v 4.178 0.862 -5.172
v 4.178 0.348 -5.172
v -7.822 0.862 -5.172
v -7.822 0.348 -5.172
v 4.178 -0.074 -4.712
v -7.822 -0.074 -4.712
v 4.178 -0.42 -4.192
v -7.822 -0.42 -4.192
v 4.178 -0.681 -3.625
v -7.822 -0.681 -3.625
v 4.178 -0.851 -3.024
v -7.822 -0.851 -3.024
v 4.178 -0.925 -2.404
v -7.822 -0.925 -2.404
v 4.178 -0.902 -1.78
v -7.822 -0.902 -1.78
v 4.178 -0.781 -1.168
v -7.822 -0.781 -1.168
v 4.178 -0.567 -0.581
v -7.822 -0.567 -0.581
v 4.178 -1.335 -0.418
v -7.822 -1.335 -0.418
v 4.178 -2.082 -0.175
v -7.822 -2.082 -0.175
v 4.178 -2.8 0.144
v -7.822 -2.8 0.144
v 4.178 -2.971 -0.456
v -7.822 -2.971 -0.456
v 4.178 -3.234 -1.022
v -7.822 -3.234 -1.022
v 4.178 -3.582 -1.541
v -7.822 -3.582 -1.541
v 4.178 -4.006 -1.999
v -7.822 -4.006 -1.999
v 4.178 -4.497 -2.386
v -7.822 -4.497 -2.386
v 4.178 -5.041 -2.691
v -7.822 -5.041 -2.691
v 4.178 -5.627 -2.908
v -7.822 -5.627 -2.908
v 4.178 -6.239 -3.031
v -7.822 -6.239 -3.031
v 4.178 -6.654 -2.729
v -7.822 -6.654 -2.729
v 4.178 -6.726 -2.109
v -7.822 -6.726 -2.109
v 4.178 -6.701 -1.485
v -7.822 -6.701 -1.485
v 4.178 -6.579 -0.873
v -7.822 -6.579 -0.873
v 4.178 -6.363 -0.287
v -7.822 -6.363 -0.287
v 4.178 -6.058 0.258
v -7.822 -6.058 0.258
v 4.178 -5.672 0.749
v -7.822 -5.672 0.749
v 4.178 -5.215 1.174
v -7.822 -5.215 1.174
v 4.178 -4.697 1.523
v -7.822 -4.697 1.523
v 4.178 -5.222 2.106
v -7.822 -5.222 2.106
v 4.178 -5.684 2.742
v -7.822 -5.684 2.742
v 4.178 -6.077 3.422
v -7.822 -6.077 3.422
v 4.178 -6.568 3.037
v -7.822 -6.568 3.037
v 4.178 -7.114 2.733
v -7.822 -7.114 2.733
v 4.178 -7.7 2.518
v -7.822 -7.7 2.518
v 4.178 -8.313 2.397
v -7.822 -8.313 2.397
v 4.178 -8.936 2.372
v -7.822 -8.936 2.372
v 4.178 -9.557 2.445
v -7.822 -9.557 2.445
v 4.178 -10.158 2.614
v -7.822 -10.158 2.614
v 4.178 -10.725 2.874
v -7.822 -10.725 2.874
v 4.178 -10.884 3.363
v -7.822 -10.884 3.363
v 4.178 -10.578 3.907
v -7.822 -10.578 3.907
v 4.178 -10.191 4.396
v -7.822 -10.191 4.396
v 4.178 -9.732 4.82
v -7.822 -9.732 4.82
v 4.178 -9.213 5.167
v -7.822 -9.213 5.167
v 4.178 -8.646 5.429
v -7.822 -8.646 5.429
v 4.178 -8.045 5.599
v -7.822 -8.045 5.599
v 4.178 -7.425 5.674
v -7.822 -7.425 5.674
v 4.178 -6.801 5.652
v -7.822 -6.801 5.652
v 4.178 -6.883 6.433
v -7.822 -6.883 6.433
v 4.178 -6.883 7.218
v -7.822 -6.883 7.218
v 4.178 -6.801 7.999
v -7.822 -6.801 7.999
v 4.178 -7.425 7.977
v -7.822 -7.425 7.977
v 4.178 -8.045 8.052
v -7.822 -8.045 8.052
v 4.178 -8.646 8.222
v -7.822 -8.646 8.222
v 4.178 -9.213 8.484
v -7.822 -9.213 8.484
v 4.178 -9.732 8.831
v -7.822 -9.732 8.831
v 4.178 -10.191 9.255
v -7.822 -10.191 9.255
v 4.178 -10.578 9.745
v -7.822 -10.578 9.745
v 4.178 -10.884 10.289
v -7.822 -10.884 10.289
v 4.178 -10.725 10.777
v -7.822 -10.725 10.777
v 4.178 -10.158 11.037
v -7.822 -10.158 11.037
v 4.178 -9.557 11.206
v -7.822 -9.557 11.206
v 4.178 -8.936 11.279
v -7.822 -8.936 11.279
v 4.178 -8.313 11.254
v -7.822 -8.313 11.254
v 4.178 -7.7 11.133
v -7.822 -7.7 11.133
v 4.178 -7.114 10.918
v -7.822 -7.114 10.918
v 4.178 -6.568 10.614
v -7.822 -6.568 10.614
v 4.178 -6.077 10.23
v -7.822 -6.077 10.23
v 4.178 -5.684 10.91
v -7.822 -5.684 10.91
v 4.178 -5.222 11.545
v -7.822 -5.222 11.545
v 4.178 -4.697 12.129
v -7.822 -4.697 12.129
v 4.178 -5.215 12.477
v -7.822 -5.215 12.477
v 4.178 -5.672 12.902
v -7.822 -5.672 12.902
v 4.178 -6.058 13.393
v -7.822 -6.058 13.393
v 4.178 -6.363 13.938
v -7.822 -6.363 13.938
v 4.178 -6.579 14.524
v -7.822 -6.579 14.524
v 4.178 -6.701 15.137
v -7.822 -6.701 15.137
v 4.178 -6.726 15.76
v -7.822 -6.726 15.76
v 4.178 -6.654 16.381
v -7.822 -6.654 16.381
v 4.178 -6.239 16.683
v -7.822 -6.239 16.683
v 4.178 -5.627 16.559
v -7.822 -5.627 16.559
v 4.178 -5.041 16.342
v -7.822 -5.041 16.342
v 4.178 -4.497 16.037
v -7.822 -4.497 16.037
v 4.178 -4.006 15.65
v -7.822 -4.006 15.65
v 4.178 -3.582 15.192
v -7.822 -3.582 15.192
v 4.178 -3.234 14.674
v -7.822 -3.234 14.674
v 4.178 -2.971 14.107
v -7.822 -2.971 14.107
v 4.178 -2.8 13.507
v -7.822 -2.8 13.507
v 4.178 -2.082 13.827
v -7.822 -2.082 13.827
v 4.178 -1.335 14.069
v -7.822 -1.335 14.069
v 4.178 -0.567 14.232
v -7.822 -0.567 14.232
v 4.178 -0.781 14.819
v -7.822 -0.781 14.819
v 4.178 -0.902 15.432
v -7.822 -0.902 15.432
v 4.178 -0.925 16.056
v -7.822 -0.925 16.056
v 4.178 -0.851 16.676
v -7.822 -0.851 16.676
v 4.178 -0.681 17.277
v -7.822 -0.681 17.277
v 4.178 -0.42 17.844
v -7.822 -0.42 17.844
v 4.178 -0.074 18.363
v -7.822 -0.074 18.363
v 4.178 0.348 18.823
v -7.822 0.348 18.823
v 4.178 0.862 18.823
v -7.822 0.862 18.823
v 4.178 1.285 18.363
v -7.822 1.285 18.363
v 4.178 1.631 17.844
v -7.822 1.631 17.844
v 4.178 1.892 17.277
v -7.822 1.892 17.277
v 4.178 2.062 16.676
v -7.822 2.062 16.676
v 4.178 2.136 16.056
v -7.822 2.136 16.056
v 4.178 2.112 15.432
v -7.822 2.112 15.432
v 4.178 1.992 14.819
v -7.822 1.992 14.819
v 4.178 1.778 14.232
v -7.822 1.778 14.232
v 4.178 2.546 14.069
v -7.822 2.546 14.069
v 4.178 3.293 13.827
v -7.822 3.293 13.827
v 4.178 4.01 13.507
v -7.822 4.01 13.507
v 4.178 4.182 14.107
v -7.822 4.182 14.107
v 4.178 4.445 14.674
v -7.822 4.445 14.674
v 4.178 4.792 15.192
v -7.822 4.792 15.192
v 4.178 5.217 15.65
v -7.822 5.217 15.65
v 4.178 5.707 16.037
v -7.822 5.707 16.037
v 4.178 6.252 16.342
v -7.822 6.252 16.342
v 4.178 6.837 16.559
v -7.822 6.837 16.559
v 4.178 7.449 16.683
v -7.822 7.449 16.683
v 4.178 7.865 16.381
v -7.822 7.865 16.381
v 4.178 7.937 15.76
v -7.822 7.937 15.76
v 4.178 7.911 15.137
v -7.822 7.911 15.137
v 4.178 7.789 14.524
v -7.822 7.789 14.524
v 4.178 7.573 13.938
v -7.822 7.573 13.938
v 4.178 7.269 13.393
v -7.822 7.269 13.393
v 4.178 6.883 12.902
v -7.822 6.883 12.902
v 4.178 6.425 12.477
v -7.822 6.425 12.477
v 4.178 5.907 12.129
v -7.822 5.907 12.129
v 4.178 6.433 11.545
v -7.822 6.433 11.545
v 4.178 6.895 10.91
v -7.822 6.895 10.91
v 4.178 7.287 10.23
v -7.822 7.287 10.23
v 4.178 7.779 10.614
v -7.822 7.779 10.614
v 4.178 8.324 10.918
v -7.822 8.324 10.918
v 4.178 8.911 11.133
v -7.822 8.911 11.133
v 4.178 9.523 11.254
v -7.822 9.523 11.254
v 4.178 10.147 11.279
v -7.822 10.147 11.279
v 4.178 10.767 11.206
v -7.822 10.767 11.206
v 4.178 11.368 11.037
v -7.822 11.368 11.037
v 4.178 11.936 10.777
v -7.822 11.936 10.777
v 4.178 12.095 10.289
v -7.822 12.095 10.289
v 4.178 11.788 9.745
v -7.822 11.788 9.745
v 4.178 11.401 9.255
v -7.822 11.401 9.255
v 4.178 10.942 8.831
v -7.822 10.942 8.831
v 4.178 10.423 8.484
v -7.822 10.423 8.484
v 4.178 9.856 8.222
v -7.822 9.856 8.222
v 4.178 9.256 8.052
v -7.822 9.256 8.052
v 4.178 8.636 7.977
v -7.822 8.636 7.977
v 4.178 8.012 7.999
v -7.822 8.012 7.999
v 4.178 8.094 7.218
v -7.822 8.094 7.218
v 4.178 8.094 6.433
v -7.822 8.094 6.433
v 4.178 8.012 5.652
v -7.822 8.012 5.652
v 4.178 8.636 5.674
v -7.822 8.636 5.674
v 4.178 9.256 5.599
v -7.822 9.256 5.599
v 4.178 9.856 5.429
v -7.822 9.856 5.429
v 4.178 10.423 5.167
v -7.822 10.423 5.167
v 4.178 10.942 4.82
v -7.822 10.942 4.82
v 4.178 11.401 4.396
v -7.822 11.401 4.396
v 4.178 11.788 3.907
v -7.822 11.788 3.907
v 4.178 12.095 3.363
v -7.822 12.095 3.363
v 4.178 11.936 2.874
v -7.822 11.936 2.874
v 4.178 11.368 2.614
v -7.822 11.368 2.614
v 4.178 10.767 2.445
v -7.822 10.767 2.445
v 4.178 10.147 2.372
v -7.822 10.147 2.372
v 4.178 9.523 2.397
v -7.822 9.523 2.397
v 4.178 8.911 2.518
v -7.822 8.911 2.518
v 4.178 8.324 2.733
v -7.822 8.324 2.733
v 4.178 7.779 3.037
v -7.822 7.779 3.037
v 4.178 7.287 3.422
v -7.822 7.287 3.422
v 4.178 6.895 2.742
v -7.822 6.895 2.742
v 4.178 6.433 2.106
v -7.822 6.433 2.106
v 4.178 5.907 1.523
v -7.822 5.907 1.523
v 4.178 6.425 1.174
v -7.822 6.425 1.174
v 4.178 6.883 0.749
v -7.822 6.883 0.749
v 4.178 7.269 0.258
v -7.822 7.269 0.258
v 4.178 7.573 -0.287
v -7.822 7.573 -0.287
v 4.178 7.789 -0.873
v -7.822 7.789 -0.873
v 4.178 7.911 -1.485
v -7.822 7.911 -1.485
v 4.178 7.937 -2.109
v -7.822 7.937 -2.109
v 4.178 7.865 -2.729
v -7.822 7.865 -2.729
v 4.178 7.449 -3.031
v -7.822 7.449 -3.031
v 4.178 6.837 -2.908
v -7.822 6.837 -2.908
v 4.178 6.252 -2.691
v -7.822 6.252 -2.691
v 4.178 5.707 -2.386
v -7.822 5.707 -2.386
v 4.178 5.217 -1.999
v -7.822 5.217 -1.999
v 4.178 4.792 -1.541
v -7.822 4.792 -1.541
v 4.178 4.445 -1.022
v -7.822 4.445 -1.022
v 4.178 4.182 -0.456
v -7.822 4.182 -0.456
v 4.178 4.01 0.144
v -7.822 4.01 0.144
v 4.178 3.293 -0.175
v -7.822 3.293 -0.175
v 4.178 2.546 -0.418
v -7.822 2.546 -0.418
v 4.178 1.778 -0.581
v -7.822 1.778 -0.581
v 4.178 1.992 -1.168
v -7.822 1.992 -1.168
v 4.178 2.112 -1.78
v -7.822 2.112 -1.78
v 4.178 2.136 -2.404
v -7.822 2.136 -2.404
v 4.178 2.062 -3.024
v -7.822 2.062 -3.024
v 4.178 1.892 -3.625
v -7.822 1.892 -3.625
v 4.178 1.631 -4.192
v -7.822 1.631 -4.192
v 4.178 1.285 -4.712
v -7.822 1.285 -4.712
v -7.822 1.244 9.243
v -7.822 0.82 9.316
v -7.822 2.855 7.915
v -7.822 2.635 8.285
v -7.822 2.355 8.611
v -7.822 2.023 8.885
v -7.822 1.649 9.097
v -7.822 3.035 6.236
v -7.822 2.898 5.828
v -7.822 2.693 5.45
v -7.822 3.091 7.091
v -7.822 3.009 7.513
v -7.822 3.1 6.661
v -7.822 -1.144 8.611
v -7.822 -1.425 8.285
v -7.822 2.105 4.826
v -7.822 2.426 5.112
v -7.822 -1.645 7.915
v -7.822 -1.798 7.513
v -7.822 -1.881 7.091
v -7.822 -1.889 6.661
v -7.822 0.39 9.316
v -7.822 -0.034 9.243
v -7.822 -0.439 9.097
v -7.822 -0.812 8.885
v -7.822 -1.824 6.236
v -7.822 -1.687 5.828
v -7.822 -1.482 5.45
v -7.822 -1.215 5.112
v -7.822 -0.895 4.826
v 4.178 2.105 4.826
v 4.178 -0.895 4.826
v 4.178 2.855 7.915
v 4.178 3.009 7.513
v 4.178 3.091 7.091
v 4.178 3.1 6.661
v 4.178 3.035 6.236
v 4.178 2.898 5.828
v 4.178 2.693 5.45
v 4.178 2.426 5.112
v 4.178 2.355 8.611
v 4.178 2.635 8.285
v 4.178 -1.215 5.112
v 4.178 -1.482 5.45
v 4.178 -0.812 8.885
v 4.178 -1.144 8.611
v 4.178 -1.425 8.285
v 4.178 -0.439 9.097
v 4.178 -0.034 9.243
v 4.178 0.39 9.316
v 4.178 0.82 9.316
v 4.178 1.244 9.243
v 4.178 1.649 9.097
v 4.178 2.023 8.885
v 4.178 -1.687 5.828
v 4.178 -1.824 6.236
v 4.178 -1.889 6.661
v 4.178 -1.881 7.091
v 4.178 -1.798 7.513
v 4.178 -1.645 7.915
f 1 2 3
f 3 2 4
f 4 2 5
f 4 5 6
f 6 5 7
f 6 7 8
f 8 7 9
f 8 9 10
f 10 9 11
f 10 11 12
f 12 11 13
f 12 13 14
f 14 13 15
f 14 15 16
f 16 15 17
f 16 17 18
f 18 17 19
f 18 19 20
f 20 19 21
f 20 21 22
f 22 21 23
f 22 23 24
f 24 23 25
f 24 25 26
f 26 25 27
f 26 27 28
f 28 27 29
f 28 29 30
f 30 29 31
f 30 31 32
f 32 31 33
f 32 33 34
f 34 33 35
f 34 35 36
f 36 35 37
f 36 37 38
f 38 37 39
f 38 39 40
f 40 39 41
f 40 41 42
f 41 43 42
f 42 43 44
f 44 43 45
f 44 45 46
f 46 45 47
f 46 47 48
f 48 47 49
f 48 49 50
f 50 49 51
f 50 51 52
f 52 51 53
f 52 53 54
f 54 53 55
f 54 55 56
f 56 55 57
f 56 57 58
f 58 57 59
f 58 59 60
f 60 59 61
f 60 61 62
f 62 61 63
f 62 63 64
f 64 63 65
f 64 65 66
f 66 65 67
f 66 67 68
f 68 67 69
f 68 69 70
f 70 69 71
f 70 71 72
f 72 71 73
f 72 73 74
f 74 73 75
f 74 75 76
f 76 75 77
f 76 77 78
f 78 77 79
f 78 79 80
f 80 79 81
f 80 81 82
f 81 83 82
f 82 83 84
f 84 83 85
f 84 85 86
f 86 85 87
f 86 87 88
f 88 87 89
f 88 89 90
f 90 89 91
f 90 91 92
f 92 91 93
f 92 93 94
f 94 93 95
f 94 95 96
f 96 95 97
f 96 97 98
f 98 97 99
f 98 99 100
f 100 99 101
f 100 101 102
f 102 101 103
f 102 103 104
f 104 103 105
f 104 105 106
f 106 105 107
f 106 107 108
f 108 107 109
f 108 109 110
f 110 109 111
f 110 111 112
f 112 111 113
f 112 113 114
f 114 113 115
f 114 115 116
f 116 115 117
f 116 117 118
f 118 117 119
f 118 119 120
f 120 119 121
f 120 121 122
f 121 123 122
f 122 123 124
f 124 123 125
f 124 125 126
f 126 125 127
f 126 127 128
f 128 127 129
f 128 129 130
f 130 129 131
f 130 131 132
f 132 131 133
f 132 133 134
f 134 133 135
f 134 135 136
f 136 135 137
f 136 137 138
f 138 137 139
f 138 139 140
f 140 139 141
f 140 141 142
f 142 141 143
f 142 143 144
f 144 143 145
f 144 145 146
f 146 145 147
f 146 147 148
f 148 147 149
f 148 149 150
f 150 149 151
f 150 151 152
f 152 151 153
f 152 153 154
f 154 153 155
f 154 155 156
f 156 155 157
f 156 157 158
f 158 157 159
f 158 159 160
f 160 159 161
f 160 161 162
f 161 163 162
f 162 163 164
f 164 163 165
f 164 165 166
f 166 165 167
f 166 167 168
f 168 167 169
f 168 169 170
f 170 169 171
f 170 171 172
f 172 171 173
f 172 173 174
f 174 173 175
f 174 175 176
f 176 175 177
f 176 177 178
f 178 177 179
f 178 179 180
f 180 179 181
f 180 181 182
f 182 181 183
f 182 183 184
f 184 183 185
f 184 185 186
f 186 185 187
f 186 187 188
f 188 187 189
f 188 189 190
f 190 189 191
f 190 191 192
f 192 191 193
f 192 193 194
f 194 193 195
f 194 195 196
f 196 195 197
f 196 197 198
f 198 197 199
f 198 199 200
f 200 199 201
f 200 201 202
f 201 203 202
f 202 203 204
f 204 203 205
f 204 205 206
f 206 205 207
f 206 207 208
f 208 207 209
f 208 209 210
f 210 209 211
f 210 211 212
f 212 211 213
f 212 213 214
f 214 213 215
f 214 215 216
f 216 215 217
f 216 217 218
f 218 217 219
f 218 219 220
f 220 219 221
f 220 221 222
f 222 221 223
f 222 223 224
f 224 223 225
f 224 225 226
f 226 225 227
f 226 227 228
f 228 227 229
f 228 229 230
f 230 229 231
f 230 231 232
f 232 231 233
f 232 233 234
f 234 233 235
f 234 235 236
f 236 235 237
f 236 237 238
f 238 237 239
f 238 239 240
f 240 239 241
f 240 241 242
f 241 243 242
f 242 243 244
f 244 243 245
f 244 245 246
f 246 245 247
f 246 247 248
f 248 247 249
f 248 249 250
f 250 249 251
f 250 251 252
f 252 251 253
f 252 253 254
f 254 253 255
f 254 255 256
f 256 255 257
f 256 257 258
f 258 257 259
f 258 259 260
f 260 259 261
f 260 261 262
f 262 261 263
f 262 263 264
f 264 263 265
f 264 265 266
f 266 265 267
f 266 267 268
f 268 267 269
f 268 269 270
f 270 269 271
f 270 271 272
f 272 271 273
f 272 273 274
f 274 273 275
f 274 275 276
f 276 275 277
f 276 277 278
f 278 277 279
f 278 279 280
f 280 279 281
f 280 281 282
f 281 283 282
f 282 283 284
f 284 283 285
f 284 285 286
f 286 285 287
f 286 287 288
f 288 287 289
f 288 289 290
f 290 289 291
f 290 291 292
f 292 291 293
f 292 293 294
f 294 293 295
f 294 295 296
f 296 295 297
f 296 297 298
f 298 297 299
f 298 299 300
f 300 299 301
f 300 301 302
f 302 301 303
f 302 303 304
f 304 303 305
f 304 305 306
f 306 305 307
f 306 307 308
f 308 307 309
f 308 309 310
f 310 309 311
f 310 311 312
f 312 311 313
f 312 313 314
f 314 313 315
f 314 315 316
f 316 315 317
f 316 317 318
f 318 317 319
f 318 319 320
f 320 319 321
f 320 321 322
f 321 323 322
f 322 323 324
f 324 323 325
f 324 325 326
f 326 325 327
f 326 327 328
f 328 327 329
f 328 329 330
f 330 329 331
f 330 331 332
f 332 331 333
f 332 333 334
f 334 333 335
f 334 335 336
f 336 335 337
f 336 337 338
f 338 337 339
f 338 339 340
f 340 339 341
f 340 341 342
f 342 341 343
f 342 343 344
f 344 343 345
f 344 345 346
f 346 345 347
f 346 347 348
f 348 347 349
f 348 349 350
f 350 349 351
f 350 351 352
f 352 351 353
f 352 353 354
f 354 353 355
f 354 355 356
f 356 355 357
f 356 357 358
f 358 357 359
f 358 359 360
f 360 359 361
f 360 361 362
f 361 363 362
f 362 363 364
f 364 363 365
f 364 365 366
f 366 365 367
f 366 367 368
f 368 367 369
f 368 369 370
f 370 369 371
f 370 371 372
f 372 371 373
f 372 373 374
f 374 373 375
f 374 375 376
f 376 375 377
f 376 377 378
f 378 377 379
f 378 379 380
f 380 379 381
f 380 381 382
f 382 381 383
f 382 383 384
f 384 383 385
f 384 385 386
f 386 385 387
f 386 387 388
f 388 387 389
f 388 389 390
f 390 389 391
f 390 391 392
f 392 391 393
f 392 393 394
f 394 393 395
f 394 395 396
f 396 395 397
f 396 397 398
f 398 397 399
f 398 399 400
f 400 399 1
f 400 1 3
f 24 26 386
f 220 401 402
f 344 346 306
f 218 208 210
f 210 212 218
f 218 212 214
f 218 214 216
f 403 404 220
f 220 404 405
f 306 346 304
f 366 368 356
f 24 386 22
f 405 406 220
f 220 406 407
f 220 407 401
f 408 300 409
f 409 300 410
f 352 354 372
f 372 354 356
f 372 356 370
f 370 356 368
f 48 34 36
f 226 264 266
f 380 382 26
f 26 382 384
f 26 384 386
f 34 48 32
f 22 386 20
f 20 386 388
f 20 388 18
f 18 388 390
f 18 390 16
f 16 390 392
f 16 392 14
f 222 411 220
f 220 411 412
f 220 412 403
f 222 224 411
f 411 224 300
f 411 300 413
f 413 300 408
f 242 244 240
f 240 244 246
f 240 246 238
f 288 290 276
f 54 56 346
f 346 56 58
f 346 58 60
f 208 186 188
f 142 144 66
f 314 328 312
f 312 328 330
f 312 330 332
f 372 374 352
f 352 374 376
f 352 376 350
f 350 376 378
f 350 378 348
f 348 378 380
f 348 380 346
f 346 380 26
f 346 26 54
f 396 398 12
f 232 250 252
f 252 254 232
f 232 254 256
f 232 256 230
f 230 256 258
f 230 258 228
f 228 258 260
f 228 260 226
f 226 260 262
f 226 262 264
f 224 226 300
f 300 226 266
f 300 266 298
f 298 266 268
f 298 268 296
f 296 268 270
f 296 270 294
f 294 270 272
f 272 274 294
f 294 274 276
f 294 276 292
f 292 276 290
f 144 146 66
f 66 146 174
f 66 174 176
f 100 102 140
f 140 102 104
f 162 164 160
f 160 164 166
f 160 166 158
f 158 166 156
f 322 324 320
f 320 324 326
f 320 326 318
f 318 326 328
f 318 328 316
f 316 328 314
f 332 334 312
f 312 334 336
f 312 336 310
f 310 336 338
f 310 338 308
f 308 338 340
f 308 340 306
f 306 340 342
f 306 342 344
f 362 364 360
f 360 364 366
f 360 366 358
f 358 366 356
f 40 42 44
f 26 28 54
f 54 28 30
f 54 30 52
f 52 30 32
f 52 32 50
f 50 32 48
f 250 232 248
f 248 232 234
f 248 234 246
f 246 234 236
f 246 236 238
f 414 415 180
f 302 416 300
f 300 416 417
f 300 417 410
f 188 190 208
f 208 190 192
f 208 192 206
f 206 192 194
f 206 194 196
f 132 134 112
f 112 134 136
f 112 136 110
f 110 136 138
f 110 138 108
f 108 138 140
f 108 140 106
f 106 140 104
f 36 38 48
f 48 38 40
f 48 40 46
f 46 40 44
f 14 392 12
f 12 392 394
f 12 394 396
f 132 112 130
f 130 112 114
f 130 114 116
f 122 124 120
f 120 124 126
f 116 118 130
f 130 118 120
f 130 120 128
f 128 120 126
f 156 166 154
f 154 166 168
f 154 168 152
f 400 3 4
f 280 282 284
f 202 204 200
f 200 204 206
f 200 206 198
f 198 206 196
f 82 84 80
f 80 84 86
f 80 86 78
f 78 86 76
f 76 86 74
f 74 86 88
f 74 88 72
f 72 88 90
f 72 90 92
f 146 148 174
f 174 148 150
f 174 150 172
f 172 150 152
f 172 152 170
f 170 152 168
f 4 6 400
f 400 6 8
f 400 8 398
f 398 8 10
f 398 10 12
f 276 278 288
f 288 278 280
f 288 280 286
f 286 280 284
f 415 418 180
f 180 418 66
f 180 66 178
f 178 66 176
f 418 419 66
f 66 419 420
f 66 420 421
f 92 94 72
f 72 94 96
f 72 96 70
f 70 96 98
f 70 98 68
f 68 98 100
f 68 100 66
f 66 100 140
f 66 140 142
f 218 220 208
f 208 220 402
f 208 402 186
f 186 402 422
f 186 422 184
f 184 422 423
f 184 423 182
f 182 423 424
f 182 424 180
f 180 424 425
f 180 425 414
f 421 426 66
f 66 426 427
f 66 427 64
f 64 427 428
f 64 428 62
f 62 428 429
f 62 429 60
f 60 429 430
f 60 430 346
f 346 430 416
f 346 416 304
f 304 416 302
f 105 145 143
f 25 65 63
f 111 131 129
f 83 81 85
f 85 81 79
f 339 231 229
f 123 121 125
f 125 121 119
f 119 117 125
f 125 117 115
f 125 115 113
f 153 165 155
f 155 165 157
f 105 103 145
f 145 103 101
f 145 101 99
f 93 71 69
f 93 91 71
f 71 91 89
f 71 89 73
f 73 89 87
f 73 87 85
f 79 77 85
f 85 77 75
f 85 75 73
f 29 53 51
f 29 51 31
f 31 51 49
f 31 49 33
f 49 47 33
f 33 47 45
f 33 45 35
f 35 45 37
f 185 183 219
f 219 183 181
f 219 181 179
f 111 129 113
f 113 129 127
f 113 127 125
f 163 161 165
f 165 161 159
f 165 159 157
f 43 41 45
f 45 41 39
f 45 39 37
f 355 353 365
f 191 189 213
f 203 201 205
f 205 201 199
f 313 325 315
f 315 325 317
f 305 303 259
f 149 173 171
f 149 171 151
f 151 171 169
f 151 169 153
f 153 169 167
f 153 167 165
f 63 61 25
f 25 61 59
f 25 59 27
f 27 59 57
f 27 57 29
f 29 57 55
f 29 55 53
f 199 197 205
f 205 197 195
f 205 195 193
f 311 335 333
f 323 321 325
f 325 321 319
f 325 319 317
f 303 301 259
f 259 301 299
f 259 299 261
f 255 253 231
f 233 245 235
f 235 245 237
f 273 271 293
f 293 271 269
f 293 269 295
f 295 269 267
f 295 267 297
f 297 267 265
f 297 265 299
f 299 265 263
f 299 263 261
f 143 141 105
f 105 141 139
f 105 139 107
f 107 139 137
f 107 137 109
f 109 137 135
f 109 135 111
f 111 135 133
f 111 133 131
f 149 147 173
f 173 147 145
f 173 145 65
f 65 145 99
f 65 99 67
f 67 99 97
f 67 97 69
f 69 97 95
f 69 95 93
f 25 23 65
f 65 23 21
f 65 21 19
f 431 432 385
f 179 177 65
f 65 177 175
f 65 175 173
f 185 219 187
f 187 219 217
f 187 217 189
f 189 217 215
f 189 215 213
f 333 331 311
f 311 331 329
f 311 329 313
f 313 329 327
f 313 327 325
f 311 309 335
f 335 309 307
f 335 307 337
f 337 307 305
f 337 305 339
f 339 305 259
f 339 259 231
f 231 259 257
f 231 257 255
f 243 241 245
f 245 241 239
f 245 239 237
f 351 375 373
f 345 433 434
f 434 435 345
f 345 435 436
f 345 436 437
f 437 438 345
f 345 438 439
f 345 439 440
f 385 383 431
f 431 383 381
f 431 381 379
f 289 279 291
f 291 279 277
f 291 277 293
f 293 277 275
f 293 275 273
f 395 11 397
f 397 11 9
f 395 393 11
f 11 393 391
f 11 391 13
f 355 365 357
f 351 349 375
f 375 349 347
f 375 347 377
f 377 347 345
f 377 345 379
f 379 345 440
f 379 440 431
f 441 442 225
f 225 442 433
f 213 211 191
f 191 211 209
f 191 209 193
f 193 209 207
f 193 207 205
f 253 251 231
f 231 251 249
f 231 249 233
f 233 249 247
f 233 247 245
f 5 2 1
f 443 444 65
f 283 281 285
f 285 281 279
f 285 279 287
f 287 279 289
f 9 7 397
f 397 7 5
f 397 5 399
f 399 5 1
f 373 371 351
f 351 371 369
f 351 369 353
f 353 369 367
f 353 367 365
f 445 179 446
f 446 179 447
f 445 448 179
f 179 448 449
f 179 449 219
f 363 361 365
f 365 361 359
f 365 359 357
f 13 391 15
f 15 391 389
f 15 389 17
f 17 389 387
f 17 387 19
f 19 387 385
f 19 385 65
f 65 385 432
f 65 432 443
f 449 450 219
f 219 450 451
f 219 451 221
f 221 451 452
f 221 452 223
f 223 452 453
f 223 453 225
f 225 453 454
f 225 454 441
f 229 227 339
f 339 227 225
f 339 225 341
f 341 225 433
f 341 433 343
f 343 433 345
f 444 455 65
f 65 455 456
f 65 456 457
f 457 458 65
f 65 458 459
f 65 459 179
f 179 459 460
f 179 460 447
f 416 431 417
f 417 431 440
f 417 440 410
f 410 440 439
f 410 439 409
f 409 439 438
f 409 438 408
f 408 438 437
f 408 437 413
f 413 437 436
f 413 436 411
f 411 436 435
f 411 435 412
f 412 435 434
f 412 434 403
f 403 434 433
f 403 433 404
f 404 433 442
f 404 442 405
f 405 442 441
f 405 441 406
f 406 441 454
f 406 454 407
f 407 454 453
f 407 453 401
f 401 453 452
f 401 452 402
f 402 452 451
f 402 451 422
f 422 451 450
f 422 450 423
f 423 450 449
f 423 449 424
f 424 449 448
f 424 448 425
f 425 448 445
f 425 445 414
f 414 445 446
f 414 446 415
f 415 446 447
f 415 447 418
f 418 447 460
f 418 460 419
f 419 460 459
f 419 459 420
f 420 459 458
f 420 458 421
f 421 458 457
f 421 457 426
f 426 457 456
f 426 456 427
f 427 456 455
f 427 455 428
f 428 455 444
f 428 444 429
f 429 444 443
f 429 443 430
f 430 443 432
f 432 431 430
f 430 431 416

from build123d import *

# Parameters (mm, degrees)
SKETCH1_R           = 2.5
BOSS_EXTRUDE1_DEPTH = 12
BOSS_EXTRUDE2_DEPTH = 12


with BuildPart() as part:
    # Sketch1 → Boss-Extrude1 (new body)
    with BuildSketch(Plane(origin=(4.177782817, 0, 0), x_dir=(0, 0, -1), z_dir=(1, 0, 0))):
        with BuildLine():
            ThreePointArc((5.17160003, 0.862151985), (3.024281035, 2.061571734), (0.581113459, 1.777813393))
            ThreePointArc((0.581113459, 1.777813393), (0.306322633, 2.922590425), (-0.144249976, 4.010252494))
            ThreePointArc((-0.144249976, 4.010252494), (1.999103081, 5.216745044), (3.031319401, 7.449258441))
            ThreePointArc((3.031319401, 7.449258441), (2.88255375, 7.658695012), (2.729338849, 7.864899014))
            ThreePointArc((2.729338849, 7.864899014), (0.28712005, 7.573087536), (-1.522655071, 5.907464347))
            ThreePointArc((-1.522655071, 5.907464347), (-2.417848576, 6.672090425), (-3.421681197, 7.287187589))
            ThreePointArc((-3.421681197, 7.287187589), (-2.396830677, 9.523091882), (-2.873988583, 11.935954691))
            ThreePointArc((-2.873988583, 11.935954691), (-3.11744625, 12.01795018), (-3.36260338, 12.094715262))
            ThreePointArc((-3.36260338, 12.094715262), (-5.16687741, 10.423134625), (-5.651987492, 8.011858032))
            ThreePointArc((-5.651987492, 8.011858032), (-6.825650183, 8.104271984), (-7.999312874, 8.011858032))
            ThreePointArc((-7.999312874, 8.011858032), (-8.484422956, 10.423134625), (-10.288696986, 12.094715262))
            ThreePointArc((-10.288696986, 12.094715262), (-10.533854115, 12.01795018), (-10.777311783, 11.935954691))
            ThreePointArc((-10.777311783, 11.935954691), (-11.254469689, 9.523091882), (-10.229619169, 7.287187589))
            ThreePointArc((-10.229619169, 7.287187589), (-11.23345179, 6.672090425), (-12.128645295, 5.907464347))
            ThreePointArc((-12.128645295, 5.907464347), (-13.938420416, 7.573087536), (-16.380639215, 7.864899014))
            ThreePointArc((-16.380639215, 7.864899014), (-16.533854115, 7.658695012), (-16.682619767, 7.449258441))
            ThreePointArc((-16.682619767, 7.449258441), (-15.650403447, 5.216745044), (-13.50705039, 4.010252494))
            ThreePointArc((-13.50705039, 4.010252494), (-13.957622999, 2.922590425), (-14.232413825, 1.777813393))
            ThreePointArc((-14.232413825, 1.777813393), (-16.675581401, 2.061571734), (-18.822900396, 0.862151985))
            ThreePointArc((-18.822900396, 0.862151985), (-18.825650183, 0.605271984), (-18.822900396, 0.348391984))
            ThreePointArc((-18.822900396, 0.348391984), (-16.675581401, -0.851027765), (-14.232413825, -0.567269425))
            ThreePointArc((-14.232413825, -0.567269425), (-13.957622999, -1.712046456), (-13.50705039, -2.799708525))
            ThreePointArc((-13.50705039, -2.799708525), (-15.650403447, -4.006201075), (-16.682619767, -6.238714473))
            ThreePointArc((-16.682619767, -6.238714473), (-16.533854115, -6.448151043), (-16.380639215, -6.654355045))
            ThreePointArc((-16.380639215, -6.654355045), (-13.938420416, -6.362543568), (-12.128645295, -4.696920378))
            ThreePointArc((-12.128645295, -4.696920378), (-11.23345179, -5.461546456), (-10.229619169, -6.07664362))
            ThreePointArc((-10.229619169, -6.07664362), (-11.254469689, -8.312547914), (-10.777311783, -10.725410722))
            ThreePointArc((-10.777311783, -10.725410722), (-10.533854115, -10.807406211), (-10.288696986, -10.884171294))
            ThreePointArc((-10.288696986, -10.884171294), (-8.484422956, -9.212590657), (-7.999312874, -6.801314064))
            ThreePointArc((-7.999312874, -6.801314064), (-6.825650183, -6.893728016), (-5.651987492, -6.801314064))
            ThreePointArc((-5.651987492, -6.801314064), (-5.16687741, -9.212590657), (-3.36260338, -10.884171294))
            ThreePointArc((-3.36260338, -10.884171294), (-3.11744625, -10.807406211), (-2.873988583, -10.725410722))
            ThreePointArc((-2.873988583, -10.725410722), (-2.396830677, -8.312547914), (-3.421681197, -6.07664362))
            ThreePointArc((-3.421681197, -6.07664362), (-2.417848576, -5.461546456), (-1.522655071, -4.696920378))
            ThreePointArc((-1.522655071, -4.696920378), (0.28712005, -6.362543568), (2.729338849, -6.654355045))
            ThreePointArc((2.729338849, -6.654355045), (2.88255375, -6.448151043), (3.031319401, -6.238714473))
            ThreePointArc((3.031319401, -6.238714473), (1.999103081, -4.006201075), (-0.144249976, -2.799708525))
            ThreePointArc((-0.144249976, -2.799708525), (0.306322633, -1.712046456), (0.581113459, -0.567269425))
            ThreePointArc((0.581113459, -0.567269425), (3.024281035, -0.851027765), (5.17160003, 0.348391984))
            ThreePointArc((5.17160003, 0.348391984), (5.174349817, 0.605271984), (5.17160003, 0.862151985))
        make_face()
        with Locations((-6.825650183, 0.605271984)):
            Circle(SKETCH1_R, mode=Mode.SUBTRACT)
    extrude(amount=-BOSS_EXTRUDE1_DEPTH)

    # Sketch2 → Boss-Extrude2 (add)
    with BuildSketch(Plane(origin=(4.177782817, 0, 0), x_dir=(0, 0, -1), z_dir=(1, 0, 0))):
        with BuildLine():
            ThreePointArc((-4.325650183, 0.605271984), (-4.453941938, 1.395841399), (-4.825650183, 2.105271984))
            Line((-4.825650183, 2.105271984), (-4.825650183, -0.894728016))
            ThreePointArc((-4.825650183, -0.894728016), (-4.453941938, -0.185297431), (-4.325650183, 0.605271984))
        make_face()
    extrude(amount=-BOSS_EXTRUDE2_DEPTH)


solid = part.part
